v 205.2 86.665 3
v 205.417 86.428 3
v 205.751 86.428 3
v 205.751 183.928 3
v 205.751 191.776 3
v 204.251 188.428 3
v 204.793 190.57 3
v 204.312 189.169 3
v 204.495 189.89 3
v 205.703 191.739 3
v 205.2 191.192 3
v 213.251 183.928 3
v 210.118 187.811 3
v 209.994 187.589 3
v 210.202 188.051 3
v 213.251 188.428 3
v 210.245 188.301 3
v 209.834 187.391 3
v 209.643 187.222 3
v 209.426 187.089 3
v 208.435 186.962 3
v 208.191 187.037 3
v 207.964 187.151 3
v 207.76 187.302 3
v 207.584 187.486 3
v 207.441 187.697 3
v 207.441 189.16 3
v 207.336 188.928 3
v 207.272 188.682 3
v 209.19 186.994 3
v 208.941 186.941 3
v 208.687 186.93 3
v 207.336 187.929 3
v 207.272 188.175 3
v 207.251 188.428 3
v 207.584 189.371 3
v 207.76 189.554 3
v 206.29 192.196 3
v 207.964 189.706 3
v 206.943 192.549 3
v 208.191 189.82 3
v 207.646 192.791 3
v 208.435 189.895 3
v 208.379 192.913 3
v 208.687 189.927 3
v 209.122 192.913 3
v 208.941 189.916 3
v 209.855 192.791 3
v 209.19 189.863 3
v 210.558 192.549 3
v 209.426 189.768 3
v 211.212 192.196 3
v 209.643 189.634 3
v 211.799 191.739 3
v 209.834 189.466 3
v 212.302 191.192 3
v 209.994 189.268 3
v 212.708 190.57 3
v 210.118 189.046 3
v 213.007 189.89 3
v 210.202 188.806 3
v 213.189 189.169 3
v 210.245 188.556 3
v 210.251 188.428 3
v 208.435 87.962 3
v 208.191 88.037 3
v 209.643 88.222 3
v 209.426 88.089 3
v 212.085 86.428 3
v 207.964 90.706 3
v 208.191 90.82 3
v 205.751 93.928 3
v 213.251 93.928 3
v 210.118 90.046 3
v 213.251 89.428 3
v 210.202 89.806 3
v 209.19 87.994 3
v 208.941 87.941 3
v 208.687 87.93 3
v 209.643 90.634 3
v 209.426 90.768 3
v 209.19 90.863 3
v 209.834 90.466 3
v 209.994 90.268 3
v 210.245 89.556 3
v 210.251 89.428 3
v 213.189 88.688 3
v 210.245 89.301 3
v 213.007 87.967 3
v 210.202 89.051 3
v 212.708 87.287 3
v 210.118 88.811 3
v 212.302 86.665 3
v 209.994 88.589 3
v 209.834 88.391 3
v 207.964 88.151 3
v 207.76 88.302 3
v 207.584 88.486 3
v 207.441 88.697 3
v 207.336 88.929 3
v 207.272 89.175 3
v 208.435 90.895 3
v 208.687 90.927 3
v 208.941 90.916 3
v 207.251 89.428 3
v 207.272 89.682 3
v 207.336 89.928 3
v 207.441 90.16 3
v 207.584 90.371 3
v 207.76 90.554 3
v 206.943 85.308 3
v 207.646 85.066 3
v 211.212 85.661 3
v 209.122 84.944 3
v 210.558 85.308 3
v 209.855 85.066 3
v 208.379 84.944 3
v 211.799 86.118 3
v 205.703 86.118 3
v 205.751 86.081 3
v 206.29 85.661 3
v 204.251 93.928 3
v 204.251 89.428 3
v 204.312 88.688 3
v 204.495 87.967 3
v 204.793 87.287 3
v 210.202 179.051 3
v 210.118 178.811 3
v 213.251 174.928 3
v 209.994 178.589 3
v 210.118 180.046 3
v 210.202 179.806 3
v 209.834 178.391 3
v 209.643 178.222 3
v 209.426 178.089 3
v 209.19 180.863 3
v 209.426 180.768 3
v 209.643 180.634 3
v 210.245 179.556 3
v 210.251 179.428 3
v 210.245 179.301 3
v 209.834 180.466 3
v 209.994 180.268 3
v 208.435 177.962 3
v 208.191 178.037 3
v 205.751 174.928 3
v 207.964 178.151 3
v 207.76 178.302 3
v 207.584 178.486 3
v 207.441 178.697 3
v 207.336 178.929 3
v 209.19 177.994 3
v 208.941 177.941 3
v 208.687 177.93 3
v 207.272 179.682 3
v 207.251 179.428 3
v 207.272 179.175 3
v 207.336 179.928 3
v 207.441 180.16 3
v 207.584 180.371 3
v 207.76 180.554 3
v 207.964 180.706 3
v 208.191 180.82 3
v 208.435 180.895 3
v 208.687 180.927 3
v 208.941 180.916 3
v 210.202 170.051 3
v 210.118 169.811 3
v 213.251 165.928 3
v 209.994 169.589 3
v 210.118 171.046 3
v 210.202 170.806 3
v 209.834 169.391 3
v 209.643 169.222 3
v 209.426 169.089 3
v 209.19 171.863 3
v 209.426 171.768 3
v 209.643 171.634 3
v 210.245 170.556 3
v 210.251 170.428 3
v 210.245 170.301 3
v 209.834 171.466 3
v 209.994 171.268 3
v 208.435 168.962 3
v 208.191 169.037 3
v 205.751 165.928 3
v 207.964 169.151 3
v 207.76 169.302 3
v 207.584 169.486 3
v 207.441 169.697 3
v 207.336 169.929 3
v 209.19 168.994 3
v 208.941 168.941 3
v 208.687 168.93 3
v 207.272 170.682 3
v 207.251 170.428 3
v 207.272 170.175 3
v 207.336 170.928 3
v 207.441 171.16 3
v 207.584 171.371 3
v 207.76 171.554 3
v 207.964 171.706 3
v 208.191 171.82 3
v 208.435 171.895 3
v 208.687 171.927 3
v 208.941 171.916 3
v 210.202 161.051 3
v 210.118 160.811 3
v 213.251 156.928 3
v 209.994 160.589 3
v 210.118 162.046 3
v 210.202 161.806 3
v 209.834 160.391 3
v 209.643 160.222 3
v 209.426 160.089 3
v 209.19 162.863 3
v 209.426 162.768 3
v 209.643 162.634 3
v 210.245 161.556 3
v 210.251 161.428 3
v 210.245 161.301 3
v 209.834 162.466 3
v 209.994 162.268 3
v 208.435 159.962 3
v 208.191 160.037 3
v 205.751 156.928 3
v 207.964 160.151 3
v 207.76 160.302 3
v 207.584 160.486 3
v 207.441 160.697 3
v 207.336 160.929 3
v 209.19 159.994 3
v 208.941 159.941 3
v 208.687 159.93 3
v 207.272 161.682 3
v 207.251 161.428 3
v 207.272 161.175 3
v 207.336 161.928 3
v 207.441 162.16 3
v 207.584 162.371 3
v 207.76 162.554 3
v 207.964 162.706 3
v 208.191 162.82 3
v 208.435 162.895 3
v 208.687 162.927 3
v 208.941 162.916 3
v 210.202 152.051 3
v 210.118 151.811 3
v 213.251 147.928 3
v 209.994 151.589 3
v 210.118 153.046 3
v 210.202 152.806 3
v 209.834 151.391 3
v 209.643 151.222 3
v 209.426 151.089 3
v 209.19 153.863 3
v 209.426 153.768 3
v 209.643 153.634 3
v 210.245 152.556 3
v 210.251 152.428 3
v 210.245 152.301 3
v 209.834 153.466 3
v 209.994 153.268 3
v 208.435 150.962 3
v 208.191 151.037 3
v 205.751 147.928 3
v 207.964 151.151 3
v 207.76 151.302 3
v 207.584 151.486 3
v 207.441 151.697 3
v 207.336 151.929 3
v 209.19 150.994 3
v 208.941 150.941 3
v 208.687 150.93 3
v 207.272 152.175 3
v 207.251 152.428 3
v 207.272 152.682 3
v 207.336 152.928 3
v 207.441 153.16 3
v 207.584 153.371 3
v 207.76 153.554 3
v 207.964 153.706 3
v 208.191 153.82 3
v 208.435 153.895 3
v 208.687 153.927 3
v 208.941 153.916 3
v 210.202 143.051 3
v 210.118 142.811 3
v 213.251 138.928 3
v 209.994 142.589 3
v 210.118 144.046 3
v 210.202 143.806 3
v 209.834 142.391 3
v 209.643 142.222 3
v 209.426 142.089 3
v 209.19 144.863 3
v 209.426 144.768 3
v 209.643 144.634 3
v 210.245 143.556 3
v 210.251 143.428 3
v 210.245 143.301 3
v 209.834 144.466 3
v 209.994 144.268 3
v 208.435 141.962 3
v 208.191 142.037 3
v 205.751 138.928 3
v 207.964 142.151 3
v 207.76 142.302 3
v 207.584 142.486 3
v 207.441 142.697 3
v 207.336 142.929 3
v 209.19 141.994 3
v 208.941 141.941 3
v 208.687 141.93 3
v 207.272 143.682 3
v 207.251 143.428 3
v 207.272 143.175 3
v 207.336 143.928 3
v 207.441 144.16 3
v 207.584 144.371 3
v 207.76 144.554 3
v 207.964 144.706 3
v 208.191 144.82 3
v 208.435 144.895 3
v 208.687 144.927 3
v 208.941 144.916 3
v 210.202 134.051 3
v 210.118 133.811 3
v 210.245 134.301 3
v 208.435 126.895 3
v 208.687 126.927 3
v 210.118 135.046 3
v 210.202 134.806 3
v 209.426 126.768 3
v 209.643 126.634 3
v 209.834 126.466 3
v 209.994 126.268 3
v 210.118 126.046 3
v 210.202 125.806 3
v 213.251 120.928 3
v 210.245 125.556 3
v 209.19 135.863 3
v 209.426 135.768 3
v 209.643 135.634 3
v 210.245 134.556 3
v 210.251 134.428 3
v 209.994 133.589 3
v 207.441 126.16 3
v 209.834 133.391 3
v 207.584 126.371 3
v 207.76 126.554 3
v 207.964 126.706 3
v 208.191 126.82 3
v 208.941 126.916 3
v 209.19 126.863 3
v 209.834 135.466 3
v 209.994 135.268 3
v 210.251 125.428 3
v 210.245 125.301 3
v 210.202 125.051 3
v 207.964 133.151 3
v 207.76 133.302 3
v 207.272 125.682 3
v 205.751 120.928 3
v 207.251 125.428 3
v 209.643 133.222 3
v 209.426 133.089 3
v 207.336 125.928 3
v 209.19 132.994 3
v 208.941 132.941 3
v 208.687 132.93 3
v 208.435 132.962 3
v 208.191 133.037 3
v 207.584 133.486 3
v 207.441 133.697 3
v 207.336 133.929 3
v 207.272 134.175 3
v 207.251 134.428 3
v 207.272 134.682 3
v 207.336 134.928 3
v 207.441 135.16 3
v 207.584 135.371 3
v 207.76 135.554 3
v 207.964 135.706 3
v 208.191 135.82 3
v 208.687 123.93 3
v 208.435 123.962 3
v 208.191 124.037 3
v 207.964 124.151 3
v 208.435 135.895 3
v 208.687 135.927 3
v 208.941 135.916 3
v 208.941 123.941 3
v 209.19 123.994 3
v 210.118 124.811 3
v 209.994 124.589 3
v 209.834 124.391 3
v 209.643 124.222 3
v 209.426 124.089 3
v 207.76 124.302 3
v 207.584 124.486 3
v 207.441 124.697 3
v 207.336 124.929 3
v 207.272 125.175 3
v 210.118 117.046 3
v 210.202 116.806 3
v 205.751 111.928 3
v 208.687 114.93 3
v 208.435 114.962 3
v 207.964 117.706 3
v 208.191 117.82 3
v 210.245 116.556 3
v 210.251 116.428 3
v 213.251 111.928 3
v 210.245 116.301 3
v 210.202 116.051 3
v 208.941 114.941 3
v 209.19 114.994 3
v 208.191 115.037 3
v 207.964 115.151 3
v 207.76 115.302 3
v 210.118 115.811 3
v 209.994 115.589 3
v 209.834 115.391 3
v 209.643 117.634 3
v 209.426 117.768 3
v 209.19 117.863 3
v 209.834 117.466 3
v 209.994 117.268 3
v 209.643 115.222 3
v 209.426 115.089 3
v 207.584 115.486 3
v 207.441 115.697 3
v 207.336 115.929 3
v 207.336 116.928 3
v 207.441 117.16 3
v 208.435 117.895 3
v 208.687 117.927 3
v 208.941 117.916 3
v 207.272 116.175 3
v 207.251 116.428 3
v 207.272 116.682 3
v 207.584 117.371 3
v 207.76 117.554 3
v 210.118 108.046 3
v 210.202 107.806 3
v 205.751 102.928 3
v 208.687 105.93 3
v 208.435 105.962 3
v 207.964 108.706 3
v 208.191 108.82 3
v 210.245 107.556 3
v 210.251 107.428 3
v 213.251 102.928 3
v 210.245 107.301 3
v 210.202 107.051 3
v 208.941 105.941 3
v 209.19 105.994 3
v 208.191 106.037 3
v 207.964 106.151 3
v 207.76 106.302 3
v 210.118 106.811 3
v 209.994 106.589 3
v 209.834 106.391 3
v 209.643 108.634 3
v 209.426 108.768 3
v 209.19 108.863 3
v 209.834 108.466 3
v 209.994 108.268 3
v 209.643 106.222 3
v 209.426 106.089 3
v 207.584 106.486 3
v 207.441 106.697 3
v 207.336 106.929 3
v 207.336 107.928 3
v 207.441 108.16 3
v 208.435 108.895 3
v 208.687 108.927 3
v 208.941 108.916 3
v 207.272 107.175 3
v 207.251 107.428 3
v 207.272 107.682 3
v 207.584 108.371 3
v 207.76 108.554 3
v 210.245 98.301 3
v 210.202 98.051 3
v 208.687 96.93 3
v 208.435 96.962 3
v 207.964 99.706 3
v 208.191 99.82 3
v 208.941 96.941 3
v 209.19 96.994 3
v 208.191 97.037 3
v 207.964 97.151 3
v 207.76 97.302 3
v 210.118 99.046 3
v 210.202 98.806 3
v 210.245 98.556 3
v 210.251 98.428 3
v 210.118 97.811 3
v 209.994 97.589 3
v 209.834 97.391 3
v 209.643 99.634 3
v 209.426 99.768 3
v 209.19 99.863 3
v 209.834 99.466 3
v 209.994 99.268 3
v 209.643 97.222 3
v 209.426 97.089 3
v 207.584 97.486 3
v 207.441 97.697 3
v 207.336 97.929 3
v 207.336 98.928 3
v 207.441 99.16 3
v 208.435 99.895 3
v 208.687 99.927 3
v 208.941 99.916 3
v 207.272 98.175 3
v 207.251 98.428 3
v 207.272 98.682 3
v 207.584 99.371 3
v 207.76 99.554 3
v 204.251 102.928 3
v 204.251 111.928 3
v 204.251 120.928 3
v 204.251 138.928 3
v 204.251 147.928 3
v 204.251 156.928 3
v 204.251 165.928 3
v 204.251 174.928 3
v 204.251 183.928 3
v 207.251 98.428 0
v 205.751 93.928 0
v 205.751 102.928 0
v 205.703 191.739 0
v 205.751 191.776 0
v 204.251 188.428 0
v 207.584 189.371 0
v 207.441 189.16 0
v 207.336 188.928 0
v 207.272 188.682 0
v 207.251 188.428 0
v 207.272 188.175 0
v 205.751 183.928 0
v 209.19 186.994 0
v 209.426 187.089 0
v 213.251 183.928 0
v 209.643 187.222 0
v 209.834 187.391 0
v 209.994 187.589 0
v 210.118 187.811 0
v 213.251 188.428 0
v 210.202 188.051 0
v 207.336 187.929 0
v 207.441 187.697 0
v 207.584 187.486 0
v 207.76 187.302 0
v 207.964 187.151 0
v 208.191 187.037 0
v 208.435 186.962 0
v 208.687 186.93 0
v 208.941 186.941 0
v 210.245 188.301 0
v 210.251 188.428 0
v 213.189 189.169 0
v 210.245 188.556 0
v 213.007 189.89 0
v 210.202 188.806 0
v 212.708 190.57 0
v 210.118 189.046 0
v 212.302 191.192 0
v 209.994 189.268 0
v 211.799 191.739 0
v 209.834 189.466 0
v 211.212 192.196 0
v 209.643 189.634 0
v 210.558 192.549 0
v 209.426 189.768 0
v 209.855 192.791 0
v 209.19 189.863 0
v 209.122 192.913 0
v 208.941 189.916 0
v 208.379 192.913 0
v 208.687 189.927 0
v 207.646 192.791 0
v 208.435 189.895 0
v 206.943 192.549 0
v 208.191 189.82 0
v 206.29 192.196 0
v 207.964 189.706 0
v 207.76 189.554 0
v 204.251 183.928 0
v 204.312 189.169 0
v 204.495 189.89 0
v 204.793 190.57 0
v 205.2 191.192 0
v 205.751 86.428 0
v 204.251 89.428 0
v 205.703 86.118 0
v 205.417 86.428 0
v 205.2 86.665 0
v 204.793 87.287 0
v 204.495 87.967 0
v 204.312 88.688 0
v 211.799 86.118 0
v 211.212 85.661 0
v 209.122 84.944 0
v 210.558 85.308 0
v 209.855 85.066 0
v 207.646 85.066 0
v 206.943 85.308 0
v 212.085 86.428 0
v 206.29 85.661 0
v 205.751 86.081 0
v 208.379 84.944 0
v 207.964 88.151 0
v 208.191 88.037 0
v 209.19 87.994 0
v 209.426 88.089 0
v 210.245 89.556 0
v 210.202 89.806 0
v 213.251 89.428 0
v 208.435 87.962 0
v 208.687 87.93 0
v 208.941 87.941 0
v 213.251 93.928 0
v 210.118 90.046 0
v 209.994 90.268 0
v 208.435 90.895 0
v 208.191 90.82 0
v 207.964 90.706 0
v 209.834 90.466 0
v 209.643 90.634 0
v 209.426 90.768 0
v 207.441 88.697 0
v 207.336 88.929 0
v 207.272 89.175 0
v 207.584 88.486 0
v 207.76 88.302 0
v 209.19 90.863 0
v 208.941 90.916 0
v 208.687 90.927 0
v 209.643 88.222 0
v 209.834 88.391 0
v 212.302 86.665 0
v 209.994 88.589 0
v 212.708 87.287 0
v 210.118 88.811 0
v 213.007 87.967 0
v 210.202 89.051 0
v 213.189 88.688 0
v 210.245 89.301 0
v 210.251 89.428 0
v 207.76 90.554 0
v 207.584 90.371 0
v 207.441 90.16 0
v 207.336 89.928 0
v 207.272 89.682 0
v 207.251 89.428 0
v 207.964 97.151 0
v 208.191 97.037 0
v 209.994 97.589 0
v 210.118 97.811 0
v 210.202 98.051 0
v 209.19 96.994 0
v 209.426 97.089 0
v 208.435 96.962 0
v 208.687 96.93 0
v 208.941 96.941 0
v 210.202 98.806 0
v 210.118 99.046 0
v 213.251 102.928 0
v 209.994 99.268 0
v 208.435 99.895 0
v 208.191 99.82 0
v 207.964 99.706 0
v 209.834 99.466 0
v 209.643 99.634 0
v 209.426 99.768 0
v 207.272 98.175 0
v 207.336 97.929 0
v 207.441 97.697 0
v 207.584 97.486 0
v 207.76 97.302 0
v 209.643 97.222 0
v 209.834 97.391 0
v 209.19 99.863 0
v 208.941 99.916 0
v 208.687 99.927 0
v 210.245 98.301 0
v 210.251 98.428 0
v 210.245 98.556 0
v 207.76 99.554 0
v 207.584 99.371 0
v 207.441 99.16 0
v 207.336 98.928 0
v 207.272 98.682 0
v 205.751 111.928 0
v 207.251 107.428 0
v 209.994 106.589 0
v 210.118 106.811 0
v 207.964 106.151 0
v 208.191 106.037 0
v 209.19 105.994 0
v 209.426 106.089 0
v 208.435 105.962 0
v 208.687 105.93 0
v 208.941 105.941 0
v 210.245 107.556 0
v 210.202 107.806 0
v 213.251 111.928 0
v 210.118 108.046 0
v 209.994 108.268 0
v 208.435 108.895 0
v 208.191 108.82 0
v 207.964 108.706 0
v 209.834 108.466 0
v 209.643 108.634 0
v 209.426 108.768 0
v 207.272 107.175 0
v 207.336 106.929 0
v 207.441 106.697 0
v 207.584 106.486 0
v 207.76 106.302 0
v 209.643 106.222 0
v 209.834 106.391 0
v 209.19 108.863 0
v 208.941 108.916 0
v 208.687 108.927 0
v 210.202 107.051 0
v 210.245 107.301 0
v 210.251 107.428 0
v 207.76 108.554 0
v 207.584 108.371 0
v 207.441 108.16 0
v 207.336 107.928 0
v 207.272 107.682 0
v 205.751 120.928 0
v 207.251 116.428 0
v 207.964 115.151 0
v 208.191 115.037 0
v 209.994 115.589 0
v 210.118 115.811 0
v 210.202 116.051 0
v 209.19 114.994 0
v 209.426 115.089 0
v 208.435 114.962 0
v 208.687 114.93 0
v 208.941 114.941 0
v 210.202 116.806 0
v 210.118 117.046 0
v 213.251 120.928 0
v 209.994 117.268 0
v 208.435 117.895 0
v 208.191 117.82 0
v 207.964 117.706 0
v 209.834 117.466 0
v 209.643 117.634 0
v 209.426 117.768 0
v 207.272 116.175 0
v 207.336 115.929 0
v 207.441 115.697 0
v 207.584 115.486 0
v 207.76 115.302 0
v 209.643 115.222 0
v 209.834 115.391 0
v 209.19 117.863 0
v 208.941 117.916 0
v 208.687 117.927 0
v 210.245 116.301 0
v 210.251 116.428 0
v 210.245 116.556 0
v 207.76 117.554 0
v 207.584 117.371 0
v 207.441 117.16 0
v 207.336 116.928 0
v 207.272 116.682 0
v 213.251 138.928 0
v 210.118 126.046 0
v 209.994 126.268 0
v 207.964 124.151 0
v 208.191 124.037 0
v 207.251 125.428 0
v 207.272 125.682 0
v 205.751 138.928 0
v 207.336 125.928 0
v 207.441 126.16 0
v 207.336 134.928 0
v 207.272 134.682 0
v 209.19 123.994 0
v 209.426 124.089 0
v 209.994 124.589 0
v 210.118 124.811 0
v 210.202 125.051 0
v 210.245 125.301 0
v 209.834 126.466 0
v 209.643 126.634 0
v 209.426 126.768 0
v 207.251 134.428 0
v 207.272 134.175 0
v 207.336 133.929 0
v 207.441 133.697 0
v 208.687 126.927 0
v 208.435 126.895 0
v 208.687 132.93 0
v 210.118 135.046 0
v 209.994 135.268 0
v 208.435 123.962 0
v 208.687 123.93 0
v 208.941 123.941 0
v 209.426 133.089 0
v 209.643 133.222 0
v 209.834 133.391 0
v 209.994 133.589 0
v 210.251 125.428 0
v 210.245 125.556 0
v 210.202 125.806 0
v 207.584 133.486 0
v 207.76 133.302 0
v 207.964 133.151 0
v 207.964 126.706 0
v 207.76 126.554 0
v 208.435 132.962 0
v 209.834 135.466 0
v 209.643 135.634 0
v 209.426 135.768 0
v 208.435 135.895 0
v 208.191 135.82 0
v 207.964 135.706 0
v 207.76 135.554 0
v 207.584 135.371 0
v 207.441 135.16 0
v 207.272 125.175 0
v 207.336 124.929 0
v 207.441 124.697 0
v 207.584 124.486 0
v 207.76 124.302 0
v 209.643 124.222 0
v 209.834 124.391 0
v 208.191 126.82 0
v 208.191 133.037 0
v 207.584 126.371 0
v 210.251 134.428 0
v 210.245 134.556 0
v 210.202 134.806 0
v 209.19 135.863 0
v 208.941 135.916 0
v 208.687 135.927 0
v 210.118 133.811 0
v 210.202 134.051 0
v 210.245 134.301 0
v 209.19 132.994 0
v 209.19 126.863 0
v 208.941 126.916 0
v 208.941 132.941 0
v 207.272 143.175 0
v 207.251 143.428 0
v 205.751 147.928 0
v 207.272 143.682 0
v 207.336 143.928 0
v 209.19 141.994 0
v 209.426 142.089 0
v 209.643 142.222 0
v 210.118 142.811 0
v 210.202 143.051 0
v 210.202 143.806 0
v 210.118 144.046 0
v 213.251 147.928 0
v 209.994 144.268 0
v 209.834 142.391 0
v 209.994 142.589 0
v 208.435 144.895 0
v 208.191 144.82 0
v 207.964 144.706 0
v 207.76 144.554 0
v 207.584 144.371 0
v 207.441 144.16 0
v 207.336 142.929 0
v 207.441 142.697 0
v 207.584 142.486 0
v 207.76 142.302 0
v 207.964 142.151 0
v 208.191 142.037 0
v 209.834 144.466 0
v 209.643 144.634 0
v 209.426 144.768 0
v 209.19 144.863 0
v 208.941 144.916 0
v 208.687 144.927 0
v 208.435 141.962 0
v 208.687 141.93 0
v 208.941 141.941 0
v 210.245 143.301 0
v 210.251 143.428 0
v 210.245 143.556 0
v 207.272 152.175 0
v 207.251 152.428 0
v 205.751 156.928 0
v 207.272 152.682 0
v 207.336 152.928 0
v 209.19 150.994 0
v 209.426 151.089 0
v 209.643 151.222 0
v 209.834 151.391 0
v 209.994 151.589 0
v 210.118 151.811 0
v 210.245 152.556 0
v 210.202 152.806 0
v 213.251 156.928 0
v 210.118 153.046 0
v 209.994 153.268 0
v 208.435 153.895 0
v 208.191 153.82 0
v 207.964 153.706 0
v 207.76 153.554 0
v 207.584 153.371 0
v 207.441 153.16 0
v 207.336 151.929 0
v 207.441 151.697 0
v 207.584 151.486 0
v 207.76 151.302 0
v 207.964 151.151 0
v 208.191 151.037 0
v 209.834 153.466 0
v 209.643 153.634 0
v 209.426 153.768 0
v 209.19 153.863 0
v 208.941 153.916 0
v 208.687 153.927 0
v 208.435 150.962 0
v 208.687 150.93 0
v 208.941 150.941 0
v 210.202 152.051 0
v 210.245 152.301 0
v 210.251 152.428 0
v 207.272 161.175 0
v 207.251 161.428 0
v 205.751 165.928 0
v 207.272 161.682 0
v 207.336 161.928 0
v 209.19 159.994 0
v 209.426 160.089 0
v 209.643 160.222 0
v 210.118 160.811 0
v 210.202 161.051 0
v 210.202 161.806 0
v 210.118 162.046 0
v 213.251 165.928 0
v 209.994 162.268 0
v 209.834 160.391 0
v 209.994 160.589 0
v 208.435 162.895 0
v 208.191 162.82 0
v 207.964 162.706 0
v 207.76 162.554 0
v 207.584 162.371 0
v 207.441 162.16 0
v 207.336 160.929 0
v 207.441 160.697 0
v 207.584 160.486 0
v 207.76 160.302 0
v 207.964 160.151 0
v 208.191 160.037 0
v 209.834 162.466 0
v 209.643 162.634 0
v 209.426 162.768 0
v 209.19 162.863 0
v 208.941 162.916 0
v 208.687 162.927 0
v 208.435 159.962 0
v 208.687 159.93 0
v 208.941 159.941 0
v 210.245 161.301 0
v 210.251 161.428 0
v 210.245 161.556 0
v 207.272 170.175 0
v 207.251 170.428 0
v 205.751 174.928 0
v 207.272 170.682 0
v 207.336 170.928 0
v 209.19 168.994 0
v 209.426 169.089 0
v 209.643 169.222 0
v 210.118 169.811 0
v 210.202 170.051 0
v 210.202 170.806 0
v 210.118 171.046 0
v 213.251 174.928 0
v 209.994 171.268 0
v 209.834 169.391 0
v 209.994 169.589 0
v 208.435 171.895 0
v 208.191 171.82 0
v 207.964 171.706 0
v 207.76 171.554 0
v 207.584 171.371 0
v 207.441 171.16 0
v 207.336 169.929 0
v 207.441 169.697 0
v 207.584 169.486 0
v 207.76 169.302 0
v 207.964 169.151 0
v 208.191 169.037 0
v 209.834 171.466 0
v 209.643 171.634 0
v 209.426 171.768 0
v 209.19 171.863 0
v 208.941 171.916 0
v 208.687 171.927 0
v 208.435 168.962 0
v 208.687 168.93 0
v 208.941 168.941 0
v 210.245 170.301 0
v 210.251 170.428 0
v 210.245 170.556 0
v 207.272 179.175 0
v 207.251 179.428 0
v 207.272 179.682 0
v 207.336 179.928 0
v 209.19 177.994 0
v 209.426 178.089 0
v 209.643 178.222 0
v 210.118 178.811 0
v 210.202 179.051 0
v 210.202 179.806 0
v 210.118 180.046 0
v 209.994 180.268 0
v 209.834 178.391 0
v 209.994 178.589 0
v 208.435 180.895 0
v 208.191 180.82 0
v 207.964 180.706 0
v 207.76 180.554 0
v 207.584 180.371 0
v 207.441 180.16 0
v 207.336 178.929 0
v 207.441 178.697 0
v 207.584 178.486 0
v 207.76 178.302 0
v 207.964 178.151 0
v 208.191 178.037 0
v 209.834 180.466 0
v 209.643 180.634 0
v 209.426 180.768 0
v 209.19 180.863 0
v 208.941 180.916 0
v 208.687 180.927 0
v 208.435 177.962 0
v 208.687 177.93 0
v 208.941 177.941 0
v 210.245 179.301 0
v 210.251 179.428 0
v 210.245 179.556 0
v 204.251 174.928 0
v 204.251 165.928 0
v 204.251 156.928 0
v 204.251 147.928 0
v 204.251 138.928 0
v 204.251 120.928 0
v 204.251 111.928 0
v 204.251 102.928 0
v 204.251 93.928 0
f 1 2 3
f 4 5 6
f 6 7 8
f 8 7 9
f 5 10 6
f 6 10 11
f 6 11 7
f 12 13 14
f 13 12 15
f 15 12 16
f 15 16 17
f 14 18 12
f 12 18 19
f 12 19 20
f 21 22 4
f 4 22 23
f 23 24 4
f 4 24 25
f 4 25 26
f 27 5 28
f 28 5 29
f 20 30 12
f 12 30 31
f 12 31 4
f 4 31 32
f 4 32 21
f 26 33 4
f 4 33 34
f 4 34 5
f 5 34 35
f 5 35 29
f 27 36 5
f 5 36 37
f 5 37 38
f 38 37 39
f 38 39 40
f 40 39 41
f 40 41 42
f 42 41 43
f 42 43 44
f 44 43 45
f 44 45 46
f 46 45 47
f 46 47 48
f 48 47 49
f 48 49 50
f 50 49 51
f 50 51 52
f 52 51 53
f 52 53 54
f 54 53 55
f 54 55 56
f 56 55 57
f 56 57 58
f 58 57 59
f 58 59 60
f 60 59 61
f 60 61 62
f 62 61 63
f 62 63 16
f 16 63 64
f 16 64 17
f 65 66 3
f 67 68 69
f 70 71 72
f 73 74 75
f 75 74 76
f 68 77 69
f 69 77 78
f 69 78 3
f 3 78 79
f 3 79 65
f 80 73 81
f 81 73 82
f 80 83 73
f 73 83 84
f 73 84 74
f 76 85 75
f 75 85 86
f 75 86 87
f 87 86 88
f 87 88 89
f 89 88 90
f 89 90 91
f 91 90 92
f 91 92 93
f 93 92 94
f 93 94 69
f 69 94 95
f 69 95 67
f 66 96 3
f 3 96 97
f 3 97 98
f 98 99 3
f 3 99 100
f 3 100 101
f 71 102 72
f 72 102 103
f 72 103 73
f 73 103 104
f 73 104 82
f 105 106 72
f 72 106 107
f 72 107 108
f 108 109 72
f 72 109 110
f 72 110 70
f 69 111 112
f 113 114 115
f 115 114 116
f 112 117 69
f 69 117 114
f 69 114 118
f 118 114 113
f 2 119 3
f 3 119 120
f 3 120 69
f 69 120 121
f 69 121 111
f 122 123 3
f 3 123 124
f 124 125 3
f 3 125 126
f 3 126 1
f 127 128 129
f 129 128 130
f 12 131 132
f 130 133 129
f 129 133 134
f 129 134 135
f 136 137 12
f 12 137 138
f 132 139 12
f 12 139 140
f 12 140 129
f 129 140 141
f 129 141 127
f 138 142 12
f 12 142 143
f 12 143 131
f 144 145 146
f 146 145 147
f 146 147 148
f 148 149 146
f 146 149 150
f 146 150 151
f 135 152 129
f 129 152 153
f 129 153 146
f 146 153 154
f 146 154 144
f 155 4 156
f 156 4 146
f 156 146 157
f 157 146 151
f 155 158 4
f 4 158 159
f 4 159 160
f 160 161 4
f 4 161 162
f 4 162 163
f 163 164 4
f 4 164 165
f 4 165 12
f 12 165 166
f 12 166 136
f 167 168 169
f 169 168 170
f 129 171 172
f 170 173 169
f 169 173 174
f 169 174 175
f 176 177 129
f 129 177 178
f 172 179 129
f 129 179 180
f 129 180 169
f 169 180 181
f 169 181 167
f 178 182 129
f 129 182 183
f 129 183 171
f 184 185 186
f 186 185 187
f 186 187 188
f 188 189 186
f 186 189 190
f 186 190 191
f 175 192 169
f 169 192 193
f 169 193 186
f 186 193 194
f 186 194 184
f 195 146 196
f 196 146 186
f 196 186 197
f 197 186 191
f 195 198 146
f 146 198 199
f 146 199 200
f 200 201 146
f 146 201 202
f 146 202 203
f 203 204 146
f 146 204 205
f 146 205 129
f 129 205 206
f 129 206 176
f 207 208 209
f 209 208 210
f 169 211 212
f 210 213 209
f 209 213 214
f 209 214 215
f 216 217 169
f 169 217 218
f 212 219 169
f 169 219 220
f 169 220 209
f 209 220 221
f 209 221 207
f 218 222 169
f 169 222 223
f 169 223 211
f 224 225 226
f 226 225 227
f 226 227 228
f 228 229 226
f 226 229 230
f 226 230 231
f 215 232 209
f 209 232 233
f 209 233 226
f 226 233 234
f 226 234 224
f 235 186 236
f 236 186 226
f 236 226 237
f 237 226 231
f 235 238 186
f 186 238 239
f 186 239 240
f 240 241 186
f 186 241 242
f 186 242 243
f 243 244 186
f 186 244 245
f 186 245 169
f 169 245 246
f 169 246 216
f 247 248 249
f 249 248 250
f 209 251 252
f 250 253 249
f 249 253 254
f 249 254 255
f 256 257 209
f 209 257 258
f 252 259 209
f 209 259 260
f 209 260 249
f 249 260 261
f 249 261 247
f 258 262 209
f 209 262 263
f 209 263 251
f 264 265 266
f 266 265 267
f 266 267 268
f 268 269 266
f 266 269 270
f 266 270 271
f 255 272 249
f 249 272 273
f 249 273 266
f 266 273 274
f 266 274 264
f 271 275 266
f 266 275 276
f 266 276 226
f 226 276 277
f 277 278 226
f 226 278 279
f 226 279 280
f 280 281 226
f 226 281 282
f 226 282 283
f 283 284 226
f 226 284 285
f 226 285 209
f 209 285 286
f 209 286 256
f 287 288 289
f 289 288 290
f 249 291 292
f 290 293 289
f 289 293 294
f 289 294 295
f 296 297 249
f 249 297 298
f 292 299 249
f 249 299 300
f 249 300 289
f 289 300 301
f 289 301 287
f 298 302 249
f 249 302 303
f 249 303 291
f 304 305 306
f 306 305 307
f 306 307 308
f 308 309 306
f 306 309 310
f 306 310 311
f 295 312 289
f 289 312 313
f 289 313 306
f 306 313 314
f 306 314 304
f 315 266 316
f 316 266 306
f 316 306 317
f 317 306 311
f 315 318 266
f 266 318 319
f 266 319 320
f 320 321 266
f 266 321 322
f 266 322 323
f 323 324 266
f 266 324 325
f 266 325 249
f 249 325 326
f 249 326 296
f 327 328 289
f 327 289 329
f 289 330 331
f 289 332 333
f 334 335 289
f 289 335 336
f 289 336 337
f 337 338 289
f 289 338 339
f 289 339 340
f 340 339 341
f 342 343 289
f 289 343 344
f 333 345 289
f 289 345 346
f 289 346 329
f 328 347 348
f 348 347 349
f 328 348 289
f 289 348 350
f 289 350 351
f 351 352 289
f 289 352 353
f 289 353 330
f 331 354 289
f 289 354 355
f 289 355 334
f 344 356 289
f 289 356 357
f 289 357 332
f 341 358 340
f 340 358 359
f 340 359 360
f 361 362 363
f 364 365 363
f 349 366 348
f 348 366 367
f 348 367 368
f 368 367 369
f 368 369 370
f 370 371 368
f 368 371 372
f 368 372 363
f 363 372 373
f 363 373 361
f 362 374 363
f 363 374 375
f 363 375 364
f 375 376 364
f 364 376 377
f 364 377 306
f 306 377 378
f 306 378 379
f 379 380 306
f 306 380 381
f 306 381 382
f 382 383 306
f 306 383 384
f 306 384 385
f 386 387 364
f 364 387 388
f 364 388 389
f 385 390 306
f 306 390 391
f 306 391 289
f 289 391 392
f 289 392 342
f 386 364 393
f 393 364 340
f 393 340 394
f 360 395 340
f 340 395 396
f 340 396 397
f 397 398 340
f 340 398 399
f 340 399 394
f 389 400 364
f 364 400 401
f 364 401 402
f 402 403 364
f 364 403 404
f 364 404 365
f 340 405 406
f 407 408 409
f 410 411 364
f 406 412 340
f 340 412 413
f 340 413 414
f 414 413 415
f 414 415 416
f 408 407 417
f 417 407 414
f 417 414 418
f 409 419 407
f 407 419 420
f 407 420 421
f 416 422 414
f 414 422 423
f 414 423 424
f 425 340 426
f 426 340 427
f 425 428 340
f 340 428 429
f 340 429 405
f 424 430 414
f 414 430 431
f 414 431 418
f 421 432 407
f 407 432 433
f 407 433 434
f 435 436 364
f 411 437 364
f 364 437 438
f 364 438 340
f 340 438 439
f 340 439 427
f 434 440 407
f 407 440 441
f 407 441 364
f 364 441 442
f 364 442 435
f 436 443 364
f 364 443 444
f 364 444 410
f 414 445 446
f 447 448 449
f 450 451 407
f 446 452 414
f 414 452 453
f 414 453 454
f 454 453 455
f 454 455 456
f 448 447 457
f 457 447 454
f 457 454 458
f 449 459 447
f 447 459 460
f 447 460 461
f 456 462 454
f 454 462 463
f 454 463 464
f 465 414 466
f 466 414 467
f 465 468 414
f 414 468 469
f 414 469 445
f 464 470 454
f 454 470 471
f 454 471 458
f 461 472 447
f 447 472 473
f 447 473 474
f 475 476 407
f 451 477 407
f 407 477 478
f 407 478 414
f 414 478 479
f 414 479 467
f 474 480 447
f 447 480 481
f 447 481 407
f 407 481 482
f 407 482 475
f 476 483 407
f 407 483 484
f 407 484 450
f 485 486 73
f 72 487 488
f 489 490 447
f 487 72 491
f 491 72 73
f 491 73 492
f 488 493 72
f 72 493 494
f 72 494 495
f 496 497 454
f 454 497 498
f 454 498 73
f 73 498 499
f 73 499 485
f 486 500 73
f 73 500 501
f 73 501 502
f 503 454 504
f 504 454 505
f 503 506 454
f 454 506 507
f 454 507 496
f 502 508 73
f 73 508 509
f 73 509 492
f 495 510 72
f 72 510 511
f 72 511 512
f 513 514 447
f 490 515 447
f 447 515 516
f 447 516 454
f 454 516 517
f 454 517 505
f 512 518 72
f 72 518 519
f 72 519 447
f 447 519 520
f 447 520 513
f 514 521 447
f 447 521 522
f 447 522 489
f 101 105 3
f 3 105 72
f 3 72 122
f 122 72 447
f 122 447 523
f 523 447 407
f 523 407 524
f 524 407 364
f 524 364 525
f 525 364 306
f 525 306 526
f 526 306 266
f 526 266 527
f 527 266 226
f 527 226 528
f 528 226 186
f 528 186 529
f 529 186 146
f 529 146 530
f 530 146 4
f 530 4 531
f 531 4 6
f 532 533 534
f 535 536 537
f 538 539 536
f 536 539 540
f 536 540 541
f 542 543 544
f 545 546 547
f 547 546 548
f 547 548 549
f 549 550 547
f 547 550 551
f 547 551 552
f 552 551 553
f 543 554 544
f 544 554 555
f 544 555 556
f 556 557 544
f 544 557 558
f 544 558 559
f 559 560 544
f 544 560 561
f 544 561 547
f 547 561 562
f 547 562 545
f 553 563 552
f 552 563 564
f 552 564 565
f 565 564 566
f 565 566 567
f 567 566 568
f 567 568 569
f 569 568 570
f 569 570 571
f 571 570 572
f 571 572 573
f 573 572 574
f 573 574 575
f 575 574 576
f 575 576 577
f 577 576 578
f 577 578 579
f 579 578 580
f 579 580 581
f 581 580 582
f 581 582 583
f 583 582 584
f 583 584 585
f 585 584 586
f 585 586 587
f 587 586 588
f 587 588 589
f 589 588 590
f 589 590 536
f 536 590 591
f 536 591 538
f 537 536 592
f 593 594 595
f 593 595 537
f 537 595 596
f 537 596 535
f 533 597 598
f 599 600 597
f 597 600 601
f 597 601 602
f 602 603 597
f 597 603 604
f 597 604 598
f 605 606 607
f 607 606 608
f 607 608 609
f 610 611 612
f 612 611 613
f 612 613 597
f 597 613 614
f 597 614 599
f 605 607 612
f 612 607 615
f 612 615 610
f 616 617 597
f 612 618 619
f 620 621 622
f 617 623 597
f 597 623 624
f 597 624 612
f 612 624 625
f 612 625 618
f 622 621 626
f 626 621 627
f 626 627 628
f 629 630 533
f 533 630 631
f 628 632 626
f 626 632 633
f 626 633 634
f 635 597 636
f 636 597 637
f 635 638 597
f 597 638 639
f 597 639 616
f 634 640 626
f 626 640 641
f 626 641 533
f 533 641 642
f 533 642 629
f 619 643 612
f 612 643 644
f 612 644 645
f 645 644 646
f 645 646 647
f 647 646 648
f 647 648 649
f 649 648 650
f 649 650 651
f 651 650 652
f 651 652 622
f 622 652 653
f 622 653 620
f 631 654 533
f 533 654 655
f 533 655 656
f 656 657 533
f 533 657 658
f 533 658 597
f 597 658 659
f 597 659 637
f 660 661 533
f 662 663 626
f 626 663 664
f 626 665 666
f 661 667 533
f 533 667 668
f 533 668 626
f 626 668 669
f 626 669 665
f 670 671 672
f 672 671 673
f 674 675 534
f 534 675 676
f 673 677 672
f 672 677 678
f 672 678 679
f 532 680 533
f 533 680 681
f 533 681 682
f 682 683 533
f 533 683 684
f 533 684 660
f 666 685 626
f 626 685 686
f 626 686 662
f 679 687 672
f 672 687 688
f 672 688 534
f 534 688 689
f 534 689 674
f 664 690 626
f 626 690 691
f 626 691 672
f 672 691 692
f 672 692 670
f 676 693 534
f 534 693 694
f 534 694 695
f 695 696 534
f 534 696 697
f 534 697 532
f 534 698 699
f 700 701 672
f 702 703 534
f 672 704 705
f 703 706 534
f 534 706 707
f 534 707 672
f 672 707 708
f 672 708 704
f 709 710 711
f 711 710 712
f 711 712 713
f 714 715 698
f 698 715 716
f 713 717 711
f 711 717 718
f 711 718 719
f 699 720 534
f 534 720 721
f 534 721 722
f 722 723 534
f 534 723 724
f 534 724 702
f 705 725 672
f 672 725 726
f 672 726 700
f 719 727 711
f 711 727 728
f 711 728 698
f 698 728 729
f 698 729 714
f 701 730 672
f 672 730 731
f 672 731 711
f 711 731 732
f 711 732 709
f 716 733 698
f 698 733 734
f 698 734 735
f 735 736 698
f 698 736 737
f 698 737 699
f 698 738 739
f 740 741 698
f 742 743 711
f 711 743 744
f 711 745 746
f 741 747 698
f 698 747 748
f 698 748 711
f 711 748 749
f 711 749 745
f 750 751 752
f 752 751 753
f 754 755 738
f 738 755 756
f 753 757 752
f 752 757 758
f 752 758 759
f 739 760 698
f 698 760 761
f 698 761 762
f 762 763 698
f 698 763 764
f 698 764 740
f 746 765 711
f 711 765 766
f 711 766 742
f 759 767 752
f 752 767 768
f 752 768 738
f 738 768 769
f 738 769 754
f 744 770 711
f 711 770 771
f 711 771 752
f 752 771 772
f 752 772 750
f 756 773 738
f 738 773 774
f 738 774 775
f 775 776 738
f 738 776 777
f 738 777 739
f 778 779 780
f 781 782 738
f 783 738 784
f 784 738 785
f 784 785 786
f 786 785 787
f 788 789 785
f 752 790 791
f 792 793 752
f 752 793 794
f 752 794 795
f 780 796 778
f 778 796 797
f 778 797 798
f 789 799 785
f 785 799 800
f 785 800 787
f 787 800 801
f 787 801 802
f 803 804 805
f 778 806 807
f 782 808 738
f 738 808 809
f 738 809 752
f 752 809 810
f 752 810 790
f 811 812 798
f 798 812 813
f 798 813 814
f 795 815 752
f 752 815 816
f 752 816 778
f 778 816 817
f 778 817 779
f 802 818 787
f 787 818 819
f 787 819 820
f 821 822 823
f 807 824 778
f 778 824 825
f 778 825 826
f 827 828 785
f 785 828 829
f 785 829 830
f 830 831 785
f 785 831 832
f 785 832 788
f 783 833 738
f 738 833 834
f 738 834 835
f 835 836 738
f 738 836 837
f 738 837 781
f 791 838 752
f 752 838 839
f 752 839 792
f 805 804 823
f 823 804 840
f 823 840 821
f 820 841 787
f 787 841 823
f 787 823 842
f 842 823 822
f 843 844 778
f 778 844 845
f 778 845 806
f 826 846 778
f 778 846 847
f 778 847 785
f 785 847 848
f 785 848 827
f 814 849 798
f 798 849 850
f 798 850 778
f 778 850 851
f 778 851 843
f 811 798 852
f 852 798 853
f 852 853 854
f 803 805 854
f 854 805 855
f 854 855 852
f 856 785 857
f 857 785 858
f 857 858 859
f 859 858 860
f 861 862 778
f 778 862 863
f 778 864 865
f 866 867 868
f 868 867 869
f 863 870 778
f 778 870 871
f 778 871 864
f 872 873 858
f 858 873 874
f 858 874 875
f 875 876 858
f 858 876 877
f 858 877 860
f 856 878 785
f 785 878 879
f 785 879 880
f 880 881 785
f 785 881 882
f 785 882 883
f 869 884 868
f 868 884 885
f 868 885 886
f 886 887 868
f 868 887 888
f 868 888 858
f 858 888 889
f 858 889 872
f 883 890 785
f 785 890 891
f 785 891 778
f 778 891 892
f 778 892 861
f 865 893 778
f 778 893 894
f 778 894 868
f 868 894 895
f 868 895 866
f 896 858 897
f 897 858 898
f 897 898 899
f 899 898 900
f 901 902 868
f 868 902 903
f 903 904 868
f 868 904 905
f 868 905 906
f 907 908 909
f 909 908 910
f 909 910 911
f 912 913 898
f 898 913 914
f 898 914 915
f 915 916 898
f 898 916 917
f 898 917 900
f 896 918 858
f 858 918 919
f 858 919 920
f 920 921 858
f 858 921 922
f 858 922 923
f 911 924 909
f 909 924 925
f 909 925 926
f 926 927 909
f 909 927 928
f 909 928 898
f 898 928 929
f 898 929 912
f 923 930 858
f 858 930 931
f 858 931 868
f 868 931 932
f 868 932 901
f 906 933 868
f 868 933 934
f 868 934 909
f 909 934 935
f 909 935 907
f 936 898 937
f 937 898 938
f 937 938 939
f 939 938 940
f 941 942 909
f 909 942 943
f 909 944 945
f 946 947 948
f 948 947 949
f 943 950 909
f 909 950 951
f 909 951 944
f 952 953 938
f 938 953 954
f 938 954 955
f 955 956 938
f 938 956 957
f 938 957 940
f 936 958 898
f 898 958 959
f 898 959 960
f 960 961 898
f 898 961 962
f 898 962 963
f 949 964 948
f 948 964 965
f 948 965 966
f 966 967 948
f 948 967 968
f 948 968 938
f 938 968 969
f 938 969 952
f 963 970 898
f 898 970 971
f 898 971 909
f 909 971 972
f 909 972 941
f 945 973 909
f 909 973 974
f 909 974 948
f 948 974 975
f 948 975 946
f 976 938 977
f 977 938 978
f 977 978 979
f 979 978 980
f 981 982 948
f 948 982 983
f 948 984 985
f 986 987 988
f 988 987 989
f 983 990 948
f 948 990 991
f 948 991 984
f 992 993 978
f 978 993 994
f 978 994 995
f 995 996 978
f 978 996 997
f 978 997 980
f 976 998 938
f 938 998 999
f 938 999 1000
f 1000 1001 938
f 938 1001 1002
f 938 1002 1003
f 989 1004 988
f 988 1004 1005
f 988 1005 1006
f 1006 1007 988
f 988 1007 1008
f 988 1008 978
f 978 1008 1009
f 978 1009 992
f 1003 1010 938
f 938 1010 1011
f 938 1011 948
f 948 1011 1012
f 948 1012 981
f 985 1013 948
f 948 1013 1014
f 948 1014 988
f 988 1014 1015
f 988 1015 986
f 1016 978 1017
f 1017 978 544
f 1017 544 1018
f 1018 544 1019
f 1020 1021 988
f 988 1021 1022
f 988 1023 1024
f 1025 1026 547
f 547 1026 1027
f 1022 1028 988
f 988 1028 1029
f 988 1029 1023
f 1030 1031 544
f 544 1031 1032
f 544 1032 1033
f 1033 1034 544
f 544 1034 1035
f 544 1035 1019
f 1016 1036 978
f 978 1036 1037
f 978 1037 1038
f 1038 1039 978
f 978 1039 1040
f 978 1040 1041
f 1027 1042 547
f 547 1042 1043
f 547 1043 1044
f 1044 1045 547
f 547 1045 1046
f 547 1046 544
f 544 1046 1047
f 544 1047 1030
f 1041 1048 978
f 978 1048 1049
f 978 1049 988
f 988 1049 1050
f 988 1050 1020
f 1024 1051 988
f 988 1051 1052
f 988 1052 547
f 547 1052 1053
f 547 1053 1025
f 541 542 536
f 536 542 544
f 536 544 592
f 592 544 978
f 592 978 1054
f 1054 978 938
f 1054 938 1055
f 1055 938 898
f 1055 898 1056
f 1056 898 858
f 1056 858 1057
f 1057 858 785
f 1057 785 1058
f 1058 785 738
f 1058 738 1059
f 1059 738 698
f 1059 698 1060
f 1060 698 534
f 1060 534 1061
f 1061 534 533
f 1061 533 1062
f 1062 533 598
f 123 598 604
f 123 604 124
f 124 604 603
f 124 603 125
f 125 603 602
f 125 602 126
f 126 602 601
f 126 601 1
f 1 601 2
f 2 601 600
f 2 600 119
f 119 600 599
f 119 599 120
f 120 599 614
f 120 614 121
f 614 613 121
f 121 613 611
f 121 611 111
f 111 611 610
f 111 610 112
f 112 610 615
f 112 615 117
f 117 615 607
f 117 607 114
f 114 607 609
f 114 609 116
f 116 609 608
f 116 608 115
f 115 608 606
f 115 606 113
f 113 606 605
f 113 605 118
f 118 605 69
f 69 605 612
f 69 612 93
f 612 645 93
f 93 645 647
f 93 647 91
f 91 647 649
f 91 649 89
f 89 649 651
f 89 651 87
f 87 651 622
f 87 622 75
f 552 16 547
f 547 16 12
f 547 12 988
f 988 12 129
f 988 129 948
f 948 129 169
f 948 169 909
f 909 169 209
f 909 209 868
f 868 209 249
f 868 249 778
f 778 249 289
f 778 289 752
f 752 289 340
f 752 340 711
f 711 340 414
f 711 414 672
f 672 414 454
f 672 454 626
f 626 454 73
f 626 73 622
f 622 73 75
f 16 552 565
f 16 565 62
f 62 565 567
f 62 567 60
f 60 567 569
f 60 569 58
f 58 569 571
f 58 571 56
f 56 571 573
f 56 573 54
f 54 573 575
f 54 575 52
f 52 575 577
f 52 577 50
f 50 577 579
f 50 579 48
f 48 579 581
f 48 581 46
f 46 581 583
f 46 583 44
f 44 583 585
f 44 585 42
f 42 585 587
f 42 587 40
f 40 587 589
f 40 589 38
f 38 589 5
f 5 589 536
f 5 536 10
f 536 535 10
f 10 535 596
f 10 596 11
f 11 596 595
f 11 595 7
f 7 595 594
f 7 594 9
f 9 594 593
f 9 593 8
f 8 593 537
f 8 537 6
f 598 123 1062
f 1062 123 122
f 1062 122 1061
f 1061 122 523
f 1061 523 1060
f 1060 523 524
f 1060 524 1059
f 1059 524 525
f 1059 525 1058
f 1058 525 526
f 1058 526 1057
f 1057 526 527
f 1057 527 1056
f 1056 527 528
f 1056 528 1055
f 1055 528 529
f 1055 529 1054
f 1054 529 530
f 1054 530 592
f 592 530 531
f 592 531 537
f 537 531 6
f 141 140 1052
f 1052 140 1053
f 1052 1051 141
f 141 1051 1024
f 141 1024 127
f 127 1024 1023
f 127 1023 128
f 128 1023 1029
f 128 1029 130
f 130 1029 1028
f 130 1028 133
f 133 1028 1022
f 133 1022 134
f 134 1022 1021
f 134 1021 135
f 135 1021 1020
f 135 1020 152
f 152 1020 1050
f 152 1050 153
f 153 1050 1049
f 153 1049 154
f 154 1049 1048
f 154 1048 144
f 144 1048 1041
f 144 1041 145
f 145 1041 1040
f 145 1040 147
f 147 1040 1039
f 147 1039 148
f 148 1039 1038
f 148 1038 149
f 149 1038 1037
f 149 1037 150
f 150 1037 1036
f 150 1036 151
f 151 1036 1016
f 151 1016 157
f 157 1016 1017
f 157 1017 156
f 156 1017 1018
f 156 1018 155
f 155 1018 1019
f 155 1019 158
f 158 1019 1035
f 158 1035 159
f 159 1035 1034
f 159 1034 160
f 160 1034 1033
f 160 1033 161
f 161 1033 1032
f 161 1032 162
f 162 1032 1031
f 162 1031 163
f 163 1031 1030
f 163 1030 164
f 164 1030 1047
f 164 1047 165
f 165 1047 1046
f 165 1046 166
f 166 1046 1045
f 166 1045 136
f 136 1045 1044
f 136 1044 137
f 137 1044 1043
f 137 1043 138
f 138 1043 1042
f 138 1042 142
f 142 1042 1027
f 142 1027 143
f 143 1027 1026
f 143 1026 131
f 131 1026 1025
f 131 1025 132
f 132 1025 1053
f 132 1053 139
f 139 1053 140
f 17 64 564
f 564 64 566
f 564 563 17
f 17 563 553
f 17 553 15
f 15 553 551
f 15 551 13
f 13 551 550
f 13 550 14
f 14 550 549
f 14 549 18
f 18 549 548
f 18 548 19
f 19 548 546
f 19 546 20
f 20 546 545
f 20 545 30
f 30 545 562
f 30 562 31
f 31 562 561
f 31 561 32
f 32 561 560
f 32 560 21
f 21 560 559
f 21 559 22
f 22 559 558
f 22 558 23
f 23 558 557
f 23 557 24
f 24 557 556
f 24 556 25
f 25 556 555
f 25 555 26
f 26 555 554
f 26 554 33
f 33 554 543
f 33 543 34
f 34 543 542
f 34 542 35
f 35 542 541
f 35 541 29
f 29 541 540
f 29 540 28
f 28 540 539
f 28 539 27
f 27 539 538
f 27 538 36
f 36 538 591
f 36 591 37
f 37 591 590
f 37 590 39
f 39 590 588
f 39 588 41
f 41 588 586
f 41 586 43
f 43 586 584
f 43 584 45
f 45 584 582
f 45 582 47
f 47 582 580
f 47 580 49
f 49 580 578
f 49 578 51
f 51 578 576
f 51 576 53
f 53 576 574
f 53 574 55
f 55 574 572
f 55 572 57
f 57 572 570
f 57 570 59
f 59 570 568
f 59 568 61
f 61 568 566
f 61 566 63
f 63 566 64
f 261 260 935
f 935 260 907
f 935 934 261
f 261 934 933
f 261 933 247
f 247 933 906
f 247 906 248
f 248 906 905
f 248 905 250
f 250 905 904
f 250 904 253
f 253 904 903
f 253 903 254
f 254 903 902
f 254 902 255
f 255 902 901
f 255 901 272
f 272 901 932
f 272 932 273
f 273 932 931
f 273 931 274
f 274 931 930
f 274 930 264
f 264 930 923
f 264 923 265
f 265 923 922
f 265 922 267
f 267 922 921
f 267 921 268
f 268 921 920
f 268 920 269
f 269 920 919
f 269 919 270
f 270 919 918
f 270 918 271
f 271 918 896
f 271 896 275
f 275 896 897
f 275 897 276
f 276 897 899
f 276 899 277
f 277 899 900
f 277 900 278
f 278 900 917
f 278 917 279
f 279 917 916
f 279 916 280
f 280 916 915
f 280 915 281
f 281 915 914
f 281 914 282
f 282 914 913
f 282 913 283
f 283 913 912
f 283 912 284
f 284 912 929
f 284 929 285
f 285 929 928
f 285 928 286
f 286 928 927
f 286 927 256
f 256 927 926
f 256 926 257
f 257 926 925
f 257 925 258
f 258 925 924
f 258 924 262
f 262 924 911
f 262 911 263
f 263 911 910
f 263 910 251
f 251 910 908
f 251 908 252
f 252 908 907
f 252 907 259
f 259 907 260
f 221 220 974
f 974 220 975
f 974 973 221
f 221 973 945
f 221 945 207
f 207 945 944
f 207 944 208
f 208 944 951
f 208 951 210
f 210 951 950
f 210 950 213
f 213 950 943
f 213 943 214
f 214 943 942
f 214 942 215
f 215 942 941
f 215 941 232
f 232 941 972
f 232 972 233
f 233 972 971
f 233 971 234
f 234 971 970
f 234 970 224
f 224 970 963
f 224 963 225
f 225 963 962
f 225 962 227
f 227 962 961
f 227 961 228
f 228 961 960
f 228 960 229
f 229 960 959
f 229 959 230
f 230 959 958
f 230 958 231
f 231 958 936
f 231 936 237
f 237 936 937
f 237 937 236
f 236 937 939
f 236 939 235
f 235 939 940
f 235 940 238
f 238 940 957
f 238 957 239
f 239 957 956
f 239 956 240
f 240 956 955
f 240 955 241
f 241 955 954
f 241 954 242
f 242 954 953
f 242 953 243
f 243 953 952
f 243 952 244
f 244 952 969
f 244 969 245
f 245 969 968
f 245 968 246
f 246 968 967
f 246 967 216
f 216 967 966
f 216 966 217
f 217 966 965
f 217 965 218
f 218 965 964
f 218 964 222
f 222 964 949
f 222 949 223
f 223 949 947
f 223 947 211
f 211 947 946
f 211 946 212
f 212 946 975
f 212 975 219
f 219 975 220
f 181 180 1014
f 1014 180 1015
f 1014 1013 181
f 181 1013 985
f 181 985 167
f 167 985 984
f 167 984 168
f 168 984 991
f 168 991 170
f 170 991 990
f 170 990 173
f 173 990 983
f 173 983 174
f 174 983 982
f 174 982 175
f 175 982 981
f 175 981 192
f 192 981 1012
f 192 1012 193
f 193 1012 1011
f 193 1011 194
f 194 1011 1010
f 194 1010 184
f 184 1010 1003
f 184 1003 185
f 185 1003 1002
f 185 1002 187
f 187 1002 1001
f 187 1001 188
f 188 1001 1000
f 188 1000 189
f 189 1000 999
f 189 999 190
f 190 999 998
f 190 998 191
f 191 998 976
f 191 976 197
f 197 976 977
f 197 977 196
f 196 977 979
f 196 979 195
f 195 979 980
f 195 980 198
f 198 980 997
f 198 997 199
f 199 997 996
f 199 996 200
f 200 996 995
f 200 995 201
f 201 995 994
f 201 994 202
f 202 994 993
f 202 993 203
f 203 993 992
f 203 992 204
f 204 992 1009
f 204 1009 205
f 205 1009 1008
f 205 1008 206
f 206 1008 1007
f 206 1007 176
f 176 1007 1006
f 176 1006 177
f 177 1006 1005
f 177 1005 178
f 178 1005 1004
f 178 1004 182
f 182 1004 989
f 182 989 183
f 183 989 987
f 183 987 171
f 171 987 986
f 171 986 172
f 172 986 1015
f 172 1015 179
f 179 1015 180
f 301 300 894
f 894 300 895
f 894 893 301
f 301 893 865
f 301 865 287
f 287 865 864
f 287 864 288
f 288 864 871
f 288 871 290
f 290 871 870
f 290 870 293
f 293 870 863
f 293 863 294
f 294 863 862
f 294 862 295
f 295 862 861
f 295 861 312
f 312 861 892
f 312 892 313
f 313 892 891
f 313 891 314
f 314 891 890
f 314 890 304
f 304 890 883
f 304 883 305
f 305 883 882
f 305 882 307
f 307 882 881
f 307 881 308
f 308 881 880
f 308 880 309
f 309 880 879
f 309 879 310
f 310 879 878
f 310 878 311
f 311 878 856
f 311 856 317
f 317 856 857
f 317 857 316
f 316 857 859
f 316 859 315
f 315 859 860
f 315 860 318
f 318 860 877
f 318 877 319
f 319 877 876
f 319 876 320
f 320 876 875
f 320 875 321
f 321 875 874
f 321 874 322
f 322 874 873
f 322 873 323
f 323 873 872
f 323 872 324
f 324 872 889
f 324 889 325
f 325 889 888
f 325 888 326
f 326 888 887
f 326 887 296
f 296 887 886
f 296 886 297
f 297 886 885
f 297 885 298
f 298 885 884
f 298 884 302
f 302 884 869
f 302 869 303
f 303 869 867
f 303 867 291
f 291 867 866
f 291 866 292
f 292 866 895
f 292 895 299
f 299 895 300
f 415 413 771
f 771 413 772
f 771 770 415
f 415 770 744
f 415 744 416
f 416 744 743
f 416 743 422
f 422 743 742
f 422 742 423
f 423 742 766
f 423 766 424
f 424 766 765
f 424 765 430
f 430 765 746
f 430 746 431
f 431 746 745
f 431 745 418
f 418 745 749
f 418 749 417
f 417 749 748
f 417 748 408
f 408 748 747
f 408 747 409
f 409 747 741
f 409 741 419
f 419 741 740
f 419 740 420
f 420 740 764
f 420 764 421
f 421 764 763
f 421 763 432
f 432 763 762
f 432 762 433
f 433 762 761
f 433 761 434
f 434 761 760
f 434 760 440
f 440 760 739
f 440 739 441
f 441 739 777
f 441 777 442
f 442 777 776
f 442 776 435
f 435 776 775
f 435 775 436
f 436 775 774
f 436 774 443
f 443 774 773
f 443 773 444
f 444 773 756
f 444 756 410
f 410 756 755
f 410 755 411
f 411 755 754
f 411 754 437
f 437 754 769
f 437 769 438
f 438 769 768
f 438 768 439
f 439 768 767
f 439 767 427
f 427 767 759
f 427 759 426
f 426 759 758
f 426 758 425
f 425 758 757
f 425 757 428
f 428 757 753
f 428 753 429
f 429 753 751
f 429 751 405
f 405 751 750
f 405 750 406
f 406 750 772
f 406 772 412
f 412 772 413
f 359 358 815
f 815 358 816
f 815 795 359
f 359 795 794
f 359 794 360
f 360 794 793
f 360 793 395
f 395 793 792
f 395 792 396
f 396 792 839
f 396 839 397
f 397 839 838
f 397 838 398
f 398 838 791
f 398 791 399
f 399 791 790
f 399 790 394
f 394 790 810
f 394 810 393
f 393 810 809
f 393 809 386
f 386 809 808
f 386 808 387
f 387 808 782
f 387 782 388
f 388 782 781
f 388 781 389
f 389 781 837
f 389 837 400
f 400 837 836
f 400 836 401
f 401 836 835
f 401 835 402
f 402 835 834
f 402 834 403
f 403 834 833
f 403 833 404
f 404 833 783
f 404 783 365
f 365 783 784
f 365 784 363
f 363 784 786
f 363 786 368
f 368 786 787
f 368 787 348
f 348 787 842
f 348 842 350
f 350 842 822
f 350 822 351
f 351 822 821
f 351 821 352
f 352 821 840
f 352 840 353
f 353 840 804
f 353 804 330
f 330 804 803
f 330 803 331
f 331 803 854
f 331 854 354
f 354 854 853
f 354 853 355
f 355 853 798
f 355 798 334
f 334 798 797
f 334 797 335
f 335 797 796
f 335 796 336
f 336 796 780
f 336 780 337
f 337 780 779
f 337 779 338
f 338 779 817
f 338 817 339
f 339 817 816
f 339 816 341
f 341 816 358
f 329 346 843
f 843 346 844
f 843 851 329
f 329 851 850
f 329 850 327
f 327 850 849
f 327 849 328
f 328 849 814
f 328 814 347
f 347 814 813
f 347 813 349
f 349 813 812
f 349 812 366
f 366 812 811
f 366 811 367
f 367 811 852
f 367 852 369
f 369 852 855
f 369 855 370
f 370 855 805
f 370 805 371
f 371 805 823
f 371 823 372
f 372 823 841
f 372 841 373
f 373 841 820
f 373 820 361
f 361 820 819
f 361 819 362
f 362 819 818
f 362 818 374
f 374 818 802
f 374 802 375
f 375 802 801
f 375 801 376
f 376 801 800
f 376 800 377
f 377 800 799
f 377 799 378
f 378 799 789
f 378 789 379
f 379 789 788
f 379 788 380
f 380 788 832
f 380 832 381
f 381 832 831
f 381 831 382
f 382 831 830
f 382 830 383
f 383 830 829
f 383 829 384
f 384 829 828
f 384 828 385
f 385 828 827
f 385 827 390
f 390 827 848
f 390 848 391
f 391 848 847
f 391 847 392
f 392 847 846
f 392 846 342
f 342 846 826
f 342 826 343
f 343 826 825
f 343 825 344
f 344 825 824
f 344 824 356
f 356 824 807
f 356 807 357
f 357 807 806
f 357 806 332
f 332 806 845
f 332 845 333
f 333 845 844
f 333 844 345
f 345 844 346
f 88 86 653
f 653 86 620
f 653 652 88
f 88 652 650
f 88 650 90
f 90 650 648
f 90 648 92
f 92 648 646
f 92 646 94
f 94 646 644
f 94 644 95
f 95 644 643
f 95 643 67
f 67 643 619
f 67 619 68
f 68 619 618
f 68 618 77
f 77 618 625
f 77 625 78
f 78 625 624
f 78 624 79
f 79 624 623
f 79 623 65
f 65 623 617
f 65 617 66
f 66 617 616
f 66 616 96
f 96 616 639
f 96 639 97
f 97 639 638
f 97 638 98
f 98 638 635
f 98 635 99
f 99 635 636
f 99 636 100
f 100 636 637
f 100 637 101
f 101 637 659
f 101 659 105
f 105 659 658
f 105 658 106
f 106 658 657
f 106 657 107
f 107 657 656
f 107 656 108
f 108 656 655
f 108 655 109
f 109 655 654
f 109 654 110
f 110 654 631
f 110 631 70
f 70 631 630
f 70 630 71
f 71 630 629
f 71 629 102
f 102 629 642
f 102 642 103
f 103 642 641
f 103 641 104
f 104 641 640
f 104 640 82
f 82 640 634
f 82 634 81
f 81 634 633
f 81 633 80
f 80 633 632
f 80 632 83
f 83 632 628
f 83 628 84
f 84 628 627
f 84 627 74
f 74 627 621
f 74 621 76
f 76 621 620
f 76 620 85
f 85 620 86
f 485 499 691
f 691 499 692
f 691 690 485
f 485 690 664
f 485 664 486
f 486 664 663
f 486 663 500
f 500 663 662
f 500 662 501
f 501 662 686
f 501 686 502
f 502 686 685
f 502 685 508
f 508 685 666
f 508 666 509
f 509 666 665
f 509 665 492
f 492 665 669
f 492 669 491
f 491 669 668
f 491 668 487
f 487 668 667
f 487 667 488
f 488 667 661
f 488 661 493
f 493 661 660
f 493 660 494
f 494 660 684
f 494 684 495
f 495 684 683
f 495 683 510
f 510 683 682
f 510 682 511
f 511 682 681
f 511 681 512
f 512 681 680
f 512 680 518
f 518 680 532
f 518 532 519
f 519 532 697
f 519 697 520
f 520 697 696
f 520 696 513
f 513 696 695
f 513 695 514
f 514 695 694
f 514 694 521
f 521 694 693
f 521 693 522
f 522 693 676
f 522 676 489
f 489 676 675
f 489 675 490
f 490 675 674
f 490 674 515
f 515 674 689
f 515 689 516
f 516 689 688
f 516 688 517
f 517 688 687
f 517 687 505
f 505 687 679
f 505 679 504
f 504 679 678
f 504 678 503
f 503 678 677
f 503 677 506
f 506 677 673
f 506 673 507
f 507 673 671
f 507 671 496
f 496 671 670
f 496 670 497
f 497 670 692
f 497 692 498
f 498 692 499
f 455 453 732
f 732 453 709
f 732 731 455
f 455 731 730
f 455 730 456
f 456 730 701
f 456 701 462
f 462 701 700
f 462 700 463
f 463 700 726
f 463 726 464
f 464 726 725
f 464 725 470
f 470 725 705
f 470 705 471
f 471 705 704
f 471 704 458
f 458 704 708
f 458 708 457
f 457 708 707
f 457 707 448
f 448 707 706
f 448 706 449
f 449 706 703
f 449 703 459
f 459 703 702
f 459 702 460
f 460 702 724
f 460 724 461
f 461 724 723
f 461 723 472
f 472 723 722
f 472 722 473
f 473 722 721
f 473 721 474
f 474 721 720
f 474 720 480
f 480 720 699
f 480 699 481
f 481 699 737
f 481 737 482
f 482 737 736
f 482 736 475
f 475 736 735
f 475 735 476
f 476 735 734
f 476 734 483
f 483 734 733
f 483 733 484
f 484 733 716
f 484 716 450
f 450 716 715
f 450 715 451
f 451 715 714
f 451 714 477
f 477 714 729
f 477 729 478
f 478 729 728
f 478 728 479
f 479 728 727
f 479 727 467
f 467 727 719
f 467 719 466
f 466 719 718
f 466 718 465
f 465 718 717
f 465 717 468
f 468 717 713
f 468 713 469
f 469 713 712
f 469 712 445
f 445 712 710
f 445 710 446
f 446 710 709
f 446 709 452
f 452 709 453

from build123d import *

# Parameters (mm, degrees)
MODEL_R                 = 1.5
SALIENTE_EXTRUIR1_DEPTH = 3


with BuildPart() as part:
    # Model → Saliente-Extruir1 (new body)
    with BuildSketch(Plane.XY):
        with BuildLine():
            Line((213.25077615, 89.428489513), (213.25077615, 188.428489513))
            ThreePointArc((213.25077615, 188.428489513), (208.75077615, 192.928489513), (204.25077615, 188.428489513))
            Line((204.25077615, 188.428489513), (204.25077615, 89.428489513))
            ThreePointArc((204.25077615, 89.428489513), (208.75077615, 84.928489513), (213.25077615, 89.428489513))
        make_face()
        with Locations((208.75077615, 179.428489513)):
            Circle(MODEL_R, mode=Mode.SUBTRACT)
        with Locations((208.75077615, 188.428489513)):
            Circle(MODEL_R, mode=Mode.SUBTRACT)
        with Locations((208.75077615, 152.428489513)):
            Circle(MODEL_R, mode=Mode.SUBTRACT)
        with Locations((208.75077615, 161.428489513)):
            Circle(MODEL_R, mode=Mode.SUBTRACT)
        with Locations((208.75077615, 170.428489513)):
            Circle(MODEL_R, mode=Mode.SUBTRACT)
        with Locations((208.75077615, 143.428489513)):
            Circle(MODEL_R, mode=Mode.SUBTRACT)
        with Locations((208.75077615, 116.428489513)):
            Circle(MODEL_R, mode=Mode.SUBTRACT)
        with Locations((208.75077615, 125.428489513)):
            Circle(MODEL_R, mode=Mode.SUBTRACT)
        with Locations((208.75077615, 134.428489513)):
            Circle(MODEL_R, mode=Mode.SUBTRACT)
        with Locations((208.75077615, 89.428489513)):
            Circle(MODEL_R, mode=Mode.SUBTRACT)
        with Locations((208.75077615, 98.428489513)):
            Circle(MODEL_R, mode=Mode.SUBTRACT)
        with Locations((208.75077615, 107.428489513)):
            Circle(MODEL_R, mode=Mode.SUBTRACT)
    extrude(amount=SALIENTE_EXTRUIR1_DEPTH)


solid = part.part
